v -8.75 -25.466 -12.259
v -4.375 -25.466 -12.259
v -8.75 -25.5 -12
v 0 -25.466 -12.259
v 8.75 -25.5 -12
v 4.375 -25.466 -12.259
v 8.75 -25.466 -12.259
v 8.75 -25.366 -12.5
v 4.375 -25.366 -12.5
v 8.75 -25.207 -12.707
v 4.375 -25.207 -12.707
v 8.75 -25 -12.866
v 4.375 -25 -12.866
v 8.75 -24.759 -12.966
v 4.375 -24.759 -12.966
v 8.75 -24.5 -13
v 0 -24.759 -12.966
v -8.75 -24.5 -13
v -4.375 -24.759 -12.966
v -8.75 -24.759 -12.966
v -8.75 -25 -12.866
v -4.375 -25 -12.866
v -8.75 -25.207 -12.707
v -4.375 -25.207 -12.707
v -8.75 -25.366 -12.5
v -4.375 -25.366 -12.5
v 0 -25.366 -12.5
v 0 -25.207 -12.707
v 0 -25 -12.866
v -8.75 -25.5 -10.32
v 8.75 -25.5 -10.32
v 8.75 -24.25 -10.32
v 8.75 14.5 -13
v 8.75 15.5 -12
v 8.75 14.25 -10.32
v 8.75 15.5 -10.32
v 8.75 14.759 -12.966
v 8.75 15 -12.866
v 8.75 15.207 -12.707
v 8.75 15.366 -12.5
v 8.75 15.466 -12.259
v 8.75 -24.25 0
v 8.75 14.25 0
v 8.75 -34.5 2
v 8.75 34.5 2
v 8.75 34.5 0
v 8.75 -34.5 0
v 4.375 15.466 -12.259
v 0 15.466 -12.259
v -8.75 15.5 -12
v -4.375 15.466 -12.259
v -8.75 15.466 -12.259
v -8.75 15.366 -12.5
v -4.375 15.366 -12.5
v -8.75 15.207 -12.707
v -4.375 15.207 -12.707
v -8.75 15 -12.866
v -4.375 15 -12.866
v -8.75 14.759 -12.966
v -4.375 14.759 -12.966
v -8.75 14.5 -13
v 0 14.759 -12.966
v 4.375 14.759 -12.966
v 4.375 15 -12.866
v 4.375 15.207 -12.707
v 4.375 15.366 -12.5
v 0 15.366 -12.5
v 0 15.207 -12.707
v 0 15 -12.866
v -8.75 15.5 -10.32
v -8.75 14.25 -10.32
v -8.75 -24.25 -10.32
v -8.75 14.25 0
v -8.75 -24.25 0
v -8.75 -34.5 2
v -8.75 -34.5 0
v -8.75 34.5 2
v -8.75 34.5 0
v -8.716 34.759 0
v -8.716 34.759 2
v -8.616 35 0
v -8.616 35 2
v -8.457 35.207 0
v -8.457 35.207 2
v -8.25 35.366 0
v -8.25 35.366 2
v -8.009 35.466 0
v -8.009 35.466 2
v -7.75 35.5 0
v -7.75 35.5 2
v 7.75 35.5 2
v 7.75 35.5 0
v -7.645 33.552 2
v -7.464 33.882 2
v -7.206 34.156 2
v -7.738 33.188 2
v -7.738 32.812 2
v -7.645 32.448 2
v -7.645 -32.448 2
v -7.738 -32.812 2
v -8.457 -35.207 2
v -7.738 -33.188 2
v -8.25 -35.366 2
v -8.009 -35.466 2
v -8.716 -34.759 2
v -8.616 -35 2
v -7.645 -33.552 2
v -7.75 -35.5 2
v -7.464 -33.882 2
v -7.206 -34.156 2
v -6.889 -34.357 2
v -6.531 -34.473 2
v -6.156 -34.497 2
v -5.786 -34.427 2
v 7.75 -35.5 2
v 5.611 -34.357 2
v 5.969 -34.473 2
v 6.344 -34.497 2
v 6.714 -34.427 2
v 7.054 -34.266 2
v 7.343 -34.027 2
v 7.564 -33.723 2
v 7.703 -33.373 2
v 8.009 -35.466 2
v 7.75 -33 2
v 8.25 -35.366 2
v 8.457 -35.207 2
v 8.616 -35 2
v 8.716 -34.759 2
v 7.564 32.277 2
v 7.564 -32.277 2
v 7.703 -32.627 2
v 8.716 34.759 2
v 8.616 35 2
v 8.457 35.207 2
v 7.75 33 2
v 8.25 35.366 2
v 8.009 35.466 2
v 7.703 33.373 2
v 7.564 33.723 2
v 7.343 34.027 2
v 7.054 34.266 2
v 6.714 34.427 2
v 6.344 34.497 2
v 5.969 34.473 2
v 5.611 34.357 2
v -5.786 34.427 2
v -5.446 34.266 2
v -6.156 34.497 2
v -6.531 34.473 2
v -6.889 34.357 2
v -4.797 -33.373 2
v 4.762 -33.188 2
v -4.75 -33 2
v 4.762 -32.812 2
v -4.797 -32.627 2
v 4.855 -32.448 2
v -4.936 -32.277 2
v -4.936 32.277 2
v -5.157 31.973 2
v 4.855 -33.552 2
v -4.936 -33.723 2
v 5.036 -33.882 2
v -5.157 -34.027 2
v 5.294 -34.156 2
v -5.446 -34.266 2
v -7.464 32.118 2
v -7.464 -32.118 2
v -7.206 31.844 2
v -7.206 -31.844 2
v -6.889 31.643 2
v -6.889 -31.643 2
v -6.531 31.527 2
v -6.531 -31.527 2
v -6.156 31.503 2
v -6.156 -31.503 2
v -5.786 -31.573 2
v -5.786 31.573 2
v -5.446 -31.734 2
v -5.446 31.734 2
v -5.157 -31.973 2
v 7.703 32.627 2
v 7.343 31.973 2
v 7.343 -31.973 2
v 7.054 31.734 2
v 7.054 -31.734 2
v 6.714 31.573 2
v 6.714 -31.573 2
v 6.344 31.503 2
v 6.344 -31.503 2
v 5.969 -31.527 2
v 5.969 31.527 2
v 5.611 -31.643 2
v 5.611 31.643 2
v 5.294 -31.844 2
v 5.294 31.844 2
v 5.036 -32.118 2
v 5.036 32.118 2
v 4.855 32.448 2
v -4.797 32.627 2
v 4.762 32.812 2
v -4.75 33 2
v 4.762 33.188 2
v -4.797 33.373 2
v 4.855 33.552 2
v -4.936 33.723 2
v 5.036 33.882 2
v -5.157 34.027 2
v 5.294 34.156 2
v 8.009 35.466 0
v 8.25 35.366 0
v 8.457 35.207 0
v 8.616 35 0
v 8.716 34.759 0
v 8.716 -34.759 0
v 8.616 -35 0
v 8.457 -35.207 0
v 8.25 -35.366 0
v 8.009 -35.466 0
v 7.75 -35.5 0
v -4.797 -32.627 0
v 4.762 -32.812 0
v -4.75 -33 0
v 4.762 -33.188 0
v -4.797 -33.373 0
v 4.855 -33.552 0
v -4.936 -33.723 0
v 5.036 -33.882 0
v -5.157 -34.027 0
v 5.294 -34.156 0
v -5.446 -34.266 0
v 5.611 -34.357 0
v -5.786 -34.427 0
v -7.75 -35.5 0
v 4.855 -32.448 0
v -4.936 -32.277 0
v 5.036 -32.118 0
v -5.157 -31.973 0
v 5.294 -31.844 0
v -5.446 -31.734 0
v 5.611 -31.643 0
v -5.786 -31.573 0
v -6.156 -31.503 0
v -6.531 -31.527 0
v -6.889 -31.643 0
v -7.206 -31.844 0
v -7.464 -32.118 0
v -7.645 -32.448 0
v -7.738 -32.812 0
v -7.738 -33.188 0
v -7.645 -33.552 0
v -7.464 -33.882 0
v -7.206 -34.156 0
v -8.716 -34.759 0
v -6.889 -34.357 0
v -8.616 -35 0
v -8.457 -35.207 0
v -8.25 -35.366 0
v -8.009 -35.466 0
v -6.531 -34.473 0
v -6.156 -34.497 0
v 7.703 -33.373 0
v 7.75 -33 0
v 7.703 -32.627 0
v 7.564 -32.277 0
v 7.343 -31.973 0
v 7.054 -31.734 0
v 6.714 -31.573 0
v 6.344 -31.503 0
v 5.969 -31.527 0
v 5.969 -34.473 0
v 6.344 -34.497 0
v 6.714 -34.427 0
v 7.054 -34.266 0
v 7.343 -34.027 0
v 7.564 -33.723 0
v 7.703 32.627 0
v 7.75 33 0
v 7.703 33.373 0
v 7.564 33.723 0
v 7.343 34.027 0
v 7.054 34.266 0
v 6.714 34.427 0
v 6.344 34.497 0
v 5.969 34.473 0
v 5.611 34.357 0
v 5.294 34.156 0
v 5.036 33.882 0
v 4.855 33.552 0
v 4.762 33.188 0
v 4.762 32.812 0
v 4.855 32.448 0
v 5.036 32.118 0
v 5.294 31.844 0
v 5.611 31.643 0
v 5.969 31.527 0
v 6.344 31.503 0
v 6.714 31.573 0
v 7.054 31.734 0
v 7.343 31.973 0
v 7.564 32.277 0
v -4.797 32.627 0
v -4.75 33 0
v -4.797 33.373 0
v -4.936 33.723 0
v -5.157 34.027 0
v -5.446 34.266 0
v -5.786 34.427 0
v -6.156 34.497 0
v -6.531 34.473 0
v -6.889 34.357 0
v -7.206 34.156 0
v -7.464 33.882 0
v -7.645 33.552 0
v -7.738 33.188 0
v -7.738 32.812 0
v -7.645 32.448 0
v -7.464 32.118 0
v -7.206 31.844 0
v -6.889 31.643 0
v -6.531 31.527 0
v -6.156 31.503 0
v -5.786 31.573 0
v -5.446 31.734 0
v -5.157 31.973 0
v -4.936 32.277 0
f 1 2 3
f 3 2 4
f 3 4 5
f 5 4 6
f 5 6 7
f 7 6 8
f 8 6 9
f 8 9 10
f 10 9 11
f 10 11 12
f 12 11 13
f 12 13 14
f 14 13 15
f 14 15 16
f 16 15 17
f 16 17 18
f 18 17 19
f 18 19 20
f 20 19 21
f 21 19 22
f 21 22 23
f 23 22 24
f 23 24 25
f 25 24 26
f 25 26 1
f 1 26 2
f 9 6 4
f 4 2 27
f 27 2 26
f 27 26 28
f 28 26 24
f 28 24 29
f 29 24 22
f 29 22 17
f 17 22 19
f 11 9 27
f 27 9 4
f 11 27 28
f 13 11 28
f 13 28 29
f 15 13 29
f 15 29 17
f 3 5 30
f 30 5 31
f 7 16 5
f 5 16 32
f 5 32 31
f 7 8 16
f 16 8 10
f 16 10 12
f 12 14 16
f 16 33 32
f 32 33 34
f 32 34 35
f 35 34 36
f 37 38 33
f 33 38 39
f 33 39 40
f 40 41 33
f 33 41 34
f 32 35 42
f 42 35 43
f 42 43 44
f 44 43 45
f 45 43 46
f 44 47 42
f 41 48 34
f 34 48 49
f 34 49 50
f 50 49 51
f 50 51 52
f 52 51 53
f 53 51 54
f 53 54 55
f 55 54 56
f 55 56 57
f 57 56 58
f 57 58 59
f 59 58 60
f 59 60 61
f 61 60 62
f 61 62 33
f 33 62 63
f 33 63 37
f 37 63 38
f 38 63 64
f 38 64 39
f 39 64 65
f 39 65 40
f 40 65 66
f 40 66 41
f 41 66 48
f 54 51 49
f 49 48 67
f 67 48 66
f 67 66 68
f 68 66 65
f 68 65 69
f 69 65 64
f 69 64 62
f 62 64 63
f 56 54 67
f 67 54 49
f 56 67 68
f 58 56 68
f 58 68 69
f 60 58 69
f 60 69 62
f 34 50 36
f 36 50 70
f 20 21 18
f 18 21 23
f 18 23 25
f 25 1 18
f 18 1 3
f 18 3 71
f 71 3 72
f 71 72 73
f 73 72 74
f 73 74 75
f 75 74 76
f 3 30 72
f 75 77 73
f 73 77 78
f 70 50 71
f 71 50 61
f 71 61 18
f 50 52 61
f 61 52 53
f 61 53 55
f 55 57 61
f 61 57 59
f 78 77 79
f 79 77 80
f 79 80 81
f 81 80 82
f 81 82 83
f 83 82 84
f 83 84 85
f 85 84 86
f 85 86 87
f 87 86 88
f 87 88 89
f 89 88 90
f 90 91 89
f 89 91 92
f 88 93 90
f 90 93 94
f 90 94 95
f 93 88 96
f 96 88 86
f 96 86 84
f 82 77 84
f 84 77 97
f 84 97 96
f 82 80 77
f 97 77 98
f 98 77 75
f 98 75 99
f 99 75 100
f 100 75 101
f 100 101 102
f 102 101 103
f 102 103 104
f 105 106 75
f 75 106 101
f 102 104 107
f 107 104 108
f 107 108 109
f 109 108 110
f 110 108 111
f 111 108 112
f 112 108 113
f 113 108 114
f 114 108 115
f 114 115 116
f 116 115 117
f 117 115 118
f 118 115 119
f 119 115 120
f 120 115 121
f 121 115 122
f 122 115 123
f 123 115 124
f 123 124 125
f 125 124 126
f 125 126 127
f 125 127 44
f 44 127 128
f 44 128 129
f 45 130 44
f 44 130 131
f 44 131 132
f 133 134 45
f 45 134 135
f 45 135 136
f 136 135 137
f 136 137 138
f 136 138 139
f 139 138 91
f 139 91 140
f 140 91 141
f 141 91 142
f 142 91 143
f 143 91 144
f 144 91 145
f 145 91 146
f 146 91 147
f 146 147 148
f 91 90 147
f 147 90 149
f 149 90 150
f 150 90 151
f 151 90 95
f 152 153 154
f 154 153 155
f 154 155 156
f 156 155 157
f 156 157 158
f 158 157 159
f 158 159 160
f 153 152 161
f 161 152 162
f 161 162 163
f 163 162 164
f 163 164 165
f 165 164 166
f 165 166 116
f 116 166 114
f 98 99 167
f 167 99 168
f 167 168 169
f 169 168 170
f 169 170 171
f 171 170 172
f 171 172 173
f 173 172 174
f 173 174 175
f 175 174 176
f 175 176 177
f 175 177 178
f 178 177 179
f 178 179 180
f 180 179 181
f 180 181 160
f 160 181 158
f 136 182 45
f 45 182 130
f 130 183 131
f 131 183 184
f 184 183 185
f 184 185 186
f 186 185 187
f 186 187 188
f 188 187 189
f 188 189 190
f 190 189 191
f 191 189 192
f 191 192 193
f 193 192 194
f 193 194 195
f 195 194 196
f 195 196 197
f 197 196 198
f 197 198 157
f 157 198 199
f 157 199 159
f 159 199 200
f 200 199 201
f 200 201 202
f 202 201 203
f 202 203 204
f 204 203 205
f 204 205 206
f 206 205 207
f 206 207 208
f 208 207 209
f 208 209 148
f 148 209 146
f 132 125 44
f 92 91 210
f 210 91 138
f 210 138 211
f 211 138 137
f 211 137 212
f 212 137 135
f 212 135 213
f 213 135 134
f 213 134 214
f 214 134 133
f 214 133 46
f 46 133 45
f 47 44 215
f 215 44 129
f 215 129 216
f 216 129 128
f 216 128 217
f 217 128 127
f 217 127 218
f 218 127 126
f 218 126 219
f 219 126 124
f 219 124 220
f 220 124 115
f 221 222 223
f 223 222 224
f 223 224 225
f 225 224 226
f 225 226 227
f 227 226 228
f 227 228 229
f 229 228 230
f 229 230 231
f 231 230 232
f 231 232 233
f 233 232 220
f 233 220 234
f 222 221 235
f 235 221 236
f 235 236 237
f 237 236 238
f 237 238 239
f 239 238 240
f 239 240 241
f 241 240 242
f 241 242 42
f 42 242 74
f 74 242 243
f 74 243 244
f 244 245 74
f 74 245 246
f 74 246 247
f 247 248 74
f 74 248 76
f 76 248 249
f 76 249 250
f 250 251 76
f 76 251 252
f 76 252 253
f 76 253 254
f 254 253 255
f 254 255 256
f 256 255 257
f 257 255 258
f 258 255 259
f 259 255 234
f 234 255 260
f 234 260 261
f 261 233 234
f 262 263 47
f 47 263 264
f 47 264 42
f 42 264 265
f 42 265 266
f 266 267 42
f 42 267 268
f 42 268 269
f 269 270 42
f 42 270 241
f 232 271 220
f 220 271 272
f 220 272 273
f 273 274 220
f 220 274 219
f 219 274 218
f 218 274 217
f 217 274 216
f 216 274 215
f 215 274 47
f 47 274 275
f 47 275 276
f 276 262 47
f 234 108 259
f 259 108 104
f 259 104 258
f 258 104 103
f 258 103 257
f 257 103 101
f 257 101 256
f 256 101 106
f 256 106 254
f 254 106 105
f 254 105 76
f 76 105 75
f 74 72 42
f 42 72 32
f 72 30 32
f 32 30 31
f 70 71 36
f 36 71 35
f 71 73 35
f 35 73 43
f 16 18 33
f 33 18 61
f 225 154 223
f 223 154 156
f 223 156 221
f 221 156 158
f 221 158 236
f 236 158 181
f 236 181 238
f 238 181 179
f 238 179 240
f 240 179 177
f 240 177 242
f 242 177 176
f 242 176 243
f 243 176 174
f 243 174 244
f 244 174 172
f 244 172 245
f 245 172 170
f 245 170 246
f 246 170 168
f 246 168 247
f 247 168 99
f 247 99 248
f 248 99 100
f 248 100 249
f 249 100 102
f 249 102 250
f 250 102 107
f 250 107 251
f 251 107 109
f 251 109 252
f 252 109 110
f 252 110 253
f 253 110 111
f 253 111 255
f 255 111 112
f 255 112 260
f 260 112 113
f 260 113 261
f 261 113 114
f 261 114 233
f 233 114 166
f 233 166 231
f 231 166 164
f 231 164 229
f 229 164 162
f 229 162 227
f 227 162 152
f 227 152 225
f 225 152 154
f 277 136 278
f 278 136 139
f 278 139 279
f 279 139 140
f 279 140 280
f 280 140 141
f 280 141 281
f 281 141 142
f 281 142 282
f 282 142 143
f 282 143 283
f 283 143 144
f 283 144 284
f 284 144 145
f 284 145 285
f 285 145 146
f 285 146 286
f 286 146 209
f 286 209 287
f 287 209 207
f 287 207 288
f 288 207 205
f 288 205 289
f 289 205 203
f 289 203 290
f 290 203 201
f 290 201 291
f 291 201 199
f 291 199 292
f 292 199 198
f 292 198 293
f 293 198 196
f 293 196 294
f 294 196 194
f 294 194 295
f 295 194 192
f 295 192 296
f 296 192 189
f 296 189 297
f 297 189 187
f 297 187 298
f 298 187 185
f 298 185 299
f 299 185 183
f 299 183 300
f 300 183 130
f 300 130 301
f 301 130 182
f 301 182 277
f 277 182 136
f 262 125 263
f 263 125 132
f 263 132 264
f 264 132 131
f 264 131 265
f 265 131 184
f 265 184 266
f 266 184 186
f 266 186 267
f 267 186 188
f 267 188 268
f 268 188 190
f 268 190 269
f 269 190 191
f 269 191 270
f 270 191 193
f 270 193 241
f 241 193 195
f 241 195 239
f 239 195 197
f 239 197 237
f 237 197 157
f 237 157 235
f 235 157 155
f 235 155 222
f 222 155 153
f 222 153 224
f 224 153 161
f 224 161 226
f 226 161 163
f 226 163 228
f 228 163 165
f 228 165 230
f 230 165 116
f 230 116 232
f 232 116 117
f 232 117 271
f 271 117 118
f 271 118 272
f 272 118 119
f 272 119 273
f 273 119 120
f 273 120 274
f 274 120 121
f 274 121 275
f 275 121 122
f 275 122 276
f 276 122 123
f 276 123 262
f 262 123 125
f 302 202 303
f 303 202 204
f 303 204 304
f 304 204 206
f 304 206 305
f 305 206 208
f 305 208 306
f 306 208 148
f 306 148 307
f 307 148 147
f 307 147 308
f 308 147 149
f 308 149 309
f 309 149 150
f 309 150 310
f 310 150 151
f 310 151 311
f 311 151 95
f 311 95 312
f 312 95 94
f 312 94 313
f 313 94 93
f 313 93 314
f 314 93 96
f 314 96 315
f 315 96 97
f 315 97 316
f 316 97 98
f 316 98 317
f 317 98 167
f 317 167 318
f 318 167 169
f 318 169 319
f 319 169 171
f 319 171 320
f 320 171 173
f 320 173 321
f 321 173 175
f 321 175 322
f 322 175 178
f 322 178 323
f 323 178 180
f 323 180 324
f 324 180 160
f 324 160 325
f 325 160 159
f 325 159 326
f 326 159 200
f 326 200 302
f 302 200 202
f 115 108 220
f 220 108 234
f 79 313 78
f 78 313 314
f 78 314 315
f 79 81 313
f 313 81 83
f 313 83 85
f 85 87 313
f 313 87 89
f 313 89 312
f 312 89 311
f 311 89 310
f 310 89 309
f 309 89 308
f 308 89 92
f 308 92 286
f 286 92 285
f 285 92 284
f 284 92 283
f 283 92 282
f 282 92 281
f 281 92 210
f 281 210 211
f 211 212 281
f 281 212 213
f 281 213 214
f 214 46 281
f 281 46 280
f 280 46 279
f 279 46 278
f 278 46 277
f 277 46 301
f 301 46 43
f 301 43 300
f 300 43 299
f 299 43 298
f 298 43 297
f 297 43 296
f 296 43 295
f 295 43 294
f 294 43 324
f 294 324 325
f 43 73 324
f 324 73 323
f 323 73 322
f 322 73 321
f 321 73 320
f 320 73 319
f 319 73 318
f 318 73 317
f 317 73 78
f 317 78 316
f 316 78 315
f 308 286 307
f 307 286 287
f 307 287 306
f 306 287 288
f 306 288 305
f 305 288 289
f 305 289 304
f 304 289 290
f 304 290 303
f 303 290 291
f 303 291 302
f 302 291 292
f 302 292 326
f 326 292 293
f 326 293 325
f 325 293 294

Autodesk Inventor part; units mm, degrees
ref_plane "YZ Plane" through (0, 0, 0) normal (1, 0, 0) x (0, 1, 0)
ref_plane "XZ Plane" through (0, 0, 0) normal (0, 1, 0) x (-1, 0, 0)
ref_plane "XY Plane" through (0, 0, 0) normal (0, 0, 1) x (1, 0, 0)
sketch "Skizze1" plane through (0, 0, 0) normal (0, 0, 1) x (1, 0, 0)
  line L0 (-8.75, -35.5) -> (8.75, -35.5)
  line L1 (8.75, -35.5) -> (8.75, 35.5)
  line L2 (8.75, 35.5) -> (-8.75, 35.5)
  line L3 (-8.75, 35.5) -> (-8.75, -35.5)
  line L4 (-8.75, -35.5) -> (8.75, 35.5) construction
  line L5 (8.75, -35.5) -> (-8.75, 35.5) construction
  point P0 (0, 0)
  dimension "d0" = 17.5
  dimension "d1" = 71
extrude "Extrusion1" add sketch "Skizze1" along normal blind 2
sketch "Skizze2" plane through (0, 0, 2) normal (0, 0, 1) x (1, 0, 0)
  circle A0 centre (-6.25, 33) radius 1.5
  line L0 (8.75, 35.5) -> (-8.75, 35.5) projected
  line L1 (0, 35.5) -> (0, 32.4568) construction
  circle A1 centre (6.25, 33) radius 1.5
  line L2 (-3.3034, 0) -> (2.2681, 0) construction
  circle A2 centre (-6.25, -33) radius 1.5
  circle A3 centre (6.25, -33) radius 1.5
  line L3 (-8.75, 35.5) -> (-8.75, -35.5) construction
  point P0 (0, 0)
  dimension "d4" = 3
  dimension "d5" = 2.5
  dimension "d6" = 2.5
extrude "Extrusion2" cut sketch "Skizze2" against normal blind 2
sketch "Skizze3" plane through (0, 0, 0) normal (0, 0, -1) x (-1, 0, 0)
  line L0 (8.75, 35.5) -> (8.75, -35.5) projected
  line L1 (-8.75, -25.5) -> (8.75, -25.5)
  line L2 (8.75, -25.5) -> (8.75, 15.5)
  line L3 (8.75, 15.5) -> (-8.75, 15.5)
  line L4 (-8.75, 15.5) -> (-8.75, -25.5)
  line L5 (-8.75, -25.5) -> (8.75, 15.5) construction
  line L6 (8.75, -25.5) -> (-8.75, 15.5) construction
  line L7 (8.75, -35.5) -> (-8.75, -35.5) projected
  line L8 (-8.75, -35.5) -> (-8.75, 35.5) projected
  point P0 (0, -5)
  point P1 (8.75, -25.5)
  dimension "d9" = 41
  dimension "d17" = 10
extrude "Extrusion3" add sketch "Skizze3" along normal blind 13 contours L0 L1 L4 L3
sketch "Skizze4" plane through (-8.75, -35.5, 2) normal (-1, 0, 0) x (0, 0, 1)
  line L0 (-2, 10) -> (-15, 10) projected
  line L1 (-12.32, 10) -> (-2, 10)
  line L2 (-2, 10) -> (-2, 11.25)
  line L3 (-2, 11.25) -> (-12.32, 11.25)
  line L4 (-12.32, 11.25) -> (-12.32, 10)
  line L5 (-15, 10) -> (-15, 51) projected
  line L6 (-4.404, 30.5) -> (2.981, 30.5) construction
  line L7 (-2, 51) -> (-15, 51)
  line L8 (-2, 51) -> (-2, 49.75)
  line L9 (-2, 49.75) -> (-12.32, 49.75)
  line L10 (-12.32, 49.75) -> (-12.32, 51)
  line L11 (-2, 10) -> (-12.32, 10)
  point P0 (-2, 35.5)
  point P1 (-12.32, 10.625)
  dimension "d12" = 2.68
  dimension "d13" = 1.25
extrude "Extrusion4" cut sketch "Skizze4" against normal blind 17.5
fillet "Rundung1" radius 1 6 edges at (-8.75, -35.5, 1) (8.75, -35.5, 1) (8.75, 35.5, 1) (-8.75, 35.5, 1) (0, 15.5, -13) (0, -25.5, -13)
properties part number "Relais_Platte_3D-Druck"
